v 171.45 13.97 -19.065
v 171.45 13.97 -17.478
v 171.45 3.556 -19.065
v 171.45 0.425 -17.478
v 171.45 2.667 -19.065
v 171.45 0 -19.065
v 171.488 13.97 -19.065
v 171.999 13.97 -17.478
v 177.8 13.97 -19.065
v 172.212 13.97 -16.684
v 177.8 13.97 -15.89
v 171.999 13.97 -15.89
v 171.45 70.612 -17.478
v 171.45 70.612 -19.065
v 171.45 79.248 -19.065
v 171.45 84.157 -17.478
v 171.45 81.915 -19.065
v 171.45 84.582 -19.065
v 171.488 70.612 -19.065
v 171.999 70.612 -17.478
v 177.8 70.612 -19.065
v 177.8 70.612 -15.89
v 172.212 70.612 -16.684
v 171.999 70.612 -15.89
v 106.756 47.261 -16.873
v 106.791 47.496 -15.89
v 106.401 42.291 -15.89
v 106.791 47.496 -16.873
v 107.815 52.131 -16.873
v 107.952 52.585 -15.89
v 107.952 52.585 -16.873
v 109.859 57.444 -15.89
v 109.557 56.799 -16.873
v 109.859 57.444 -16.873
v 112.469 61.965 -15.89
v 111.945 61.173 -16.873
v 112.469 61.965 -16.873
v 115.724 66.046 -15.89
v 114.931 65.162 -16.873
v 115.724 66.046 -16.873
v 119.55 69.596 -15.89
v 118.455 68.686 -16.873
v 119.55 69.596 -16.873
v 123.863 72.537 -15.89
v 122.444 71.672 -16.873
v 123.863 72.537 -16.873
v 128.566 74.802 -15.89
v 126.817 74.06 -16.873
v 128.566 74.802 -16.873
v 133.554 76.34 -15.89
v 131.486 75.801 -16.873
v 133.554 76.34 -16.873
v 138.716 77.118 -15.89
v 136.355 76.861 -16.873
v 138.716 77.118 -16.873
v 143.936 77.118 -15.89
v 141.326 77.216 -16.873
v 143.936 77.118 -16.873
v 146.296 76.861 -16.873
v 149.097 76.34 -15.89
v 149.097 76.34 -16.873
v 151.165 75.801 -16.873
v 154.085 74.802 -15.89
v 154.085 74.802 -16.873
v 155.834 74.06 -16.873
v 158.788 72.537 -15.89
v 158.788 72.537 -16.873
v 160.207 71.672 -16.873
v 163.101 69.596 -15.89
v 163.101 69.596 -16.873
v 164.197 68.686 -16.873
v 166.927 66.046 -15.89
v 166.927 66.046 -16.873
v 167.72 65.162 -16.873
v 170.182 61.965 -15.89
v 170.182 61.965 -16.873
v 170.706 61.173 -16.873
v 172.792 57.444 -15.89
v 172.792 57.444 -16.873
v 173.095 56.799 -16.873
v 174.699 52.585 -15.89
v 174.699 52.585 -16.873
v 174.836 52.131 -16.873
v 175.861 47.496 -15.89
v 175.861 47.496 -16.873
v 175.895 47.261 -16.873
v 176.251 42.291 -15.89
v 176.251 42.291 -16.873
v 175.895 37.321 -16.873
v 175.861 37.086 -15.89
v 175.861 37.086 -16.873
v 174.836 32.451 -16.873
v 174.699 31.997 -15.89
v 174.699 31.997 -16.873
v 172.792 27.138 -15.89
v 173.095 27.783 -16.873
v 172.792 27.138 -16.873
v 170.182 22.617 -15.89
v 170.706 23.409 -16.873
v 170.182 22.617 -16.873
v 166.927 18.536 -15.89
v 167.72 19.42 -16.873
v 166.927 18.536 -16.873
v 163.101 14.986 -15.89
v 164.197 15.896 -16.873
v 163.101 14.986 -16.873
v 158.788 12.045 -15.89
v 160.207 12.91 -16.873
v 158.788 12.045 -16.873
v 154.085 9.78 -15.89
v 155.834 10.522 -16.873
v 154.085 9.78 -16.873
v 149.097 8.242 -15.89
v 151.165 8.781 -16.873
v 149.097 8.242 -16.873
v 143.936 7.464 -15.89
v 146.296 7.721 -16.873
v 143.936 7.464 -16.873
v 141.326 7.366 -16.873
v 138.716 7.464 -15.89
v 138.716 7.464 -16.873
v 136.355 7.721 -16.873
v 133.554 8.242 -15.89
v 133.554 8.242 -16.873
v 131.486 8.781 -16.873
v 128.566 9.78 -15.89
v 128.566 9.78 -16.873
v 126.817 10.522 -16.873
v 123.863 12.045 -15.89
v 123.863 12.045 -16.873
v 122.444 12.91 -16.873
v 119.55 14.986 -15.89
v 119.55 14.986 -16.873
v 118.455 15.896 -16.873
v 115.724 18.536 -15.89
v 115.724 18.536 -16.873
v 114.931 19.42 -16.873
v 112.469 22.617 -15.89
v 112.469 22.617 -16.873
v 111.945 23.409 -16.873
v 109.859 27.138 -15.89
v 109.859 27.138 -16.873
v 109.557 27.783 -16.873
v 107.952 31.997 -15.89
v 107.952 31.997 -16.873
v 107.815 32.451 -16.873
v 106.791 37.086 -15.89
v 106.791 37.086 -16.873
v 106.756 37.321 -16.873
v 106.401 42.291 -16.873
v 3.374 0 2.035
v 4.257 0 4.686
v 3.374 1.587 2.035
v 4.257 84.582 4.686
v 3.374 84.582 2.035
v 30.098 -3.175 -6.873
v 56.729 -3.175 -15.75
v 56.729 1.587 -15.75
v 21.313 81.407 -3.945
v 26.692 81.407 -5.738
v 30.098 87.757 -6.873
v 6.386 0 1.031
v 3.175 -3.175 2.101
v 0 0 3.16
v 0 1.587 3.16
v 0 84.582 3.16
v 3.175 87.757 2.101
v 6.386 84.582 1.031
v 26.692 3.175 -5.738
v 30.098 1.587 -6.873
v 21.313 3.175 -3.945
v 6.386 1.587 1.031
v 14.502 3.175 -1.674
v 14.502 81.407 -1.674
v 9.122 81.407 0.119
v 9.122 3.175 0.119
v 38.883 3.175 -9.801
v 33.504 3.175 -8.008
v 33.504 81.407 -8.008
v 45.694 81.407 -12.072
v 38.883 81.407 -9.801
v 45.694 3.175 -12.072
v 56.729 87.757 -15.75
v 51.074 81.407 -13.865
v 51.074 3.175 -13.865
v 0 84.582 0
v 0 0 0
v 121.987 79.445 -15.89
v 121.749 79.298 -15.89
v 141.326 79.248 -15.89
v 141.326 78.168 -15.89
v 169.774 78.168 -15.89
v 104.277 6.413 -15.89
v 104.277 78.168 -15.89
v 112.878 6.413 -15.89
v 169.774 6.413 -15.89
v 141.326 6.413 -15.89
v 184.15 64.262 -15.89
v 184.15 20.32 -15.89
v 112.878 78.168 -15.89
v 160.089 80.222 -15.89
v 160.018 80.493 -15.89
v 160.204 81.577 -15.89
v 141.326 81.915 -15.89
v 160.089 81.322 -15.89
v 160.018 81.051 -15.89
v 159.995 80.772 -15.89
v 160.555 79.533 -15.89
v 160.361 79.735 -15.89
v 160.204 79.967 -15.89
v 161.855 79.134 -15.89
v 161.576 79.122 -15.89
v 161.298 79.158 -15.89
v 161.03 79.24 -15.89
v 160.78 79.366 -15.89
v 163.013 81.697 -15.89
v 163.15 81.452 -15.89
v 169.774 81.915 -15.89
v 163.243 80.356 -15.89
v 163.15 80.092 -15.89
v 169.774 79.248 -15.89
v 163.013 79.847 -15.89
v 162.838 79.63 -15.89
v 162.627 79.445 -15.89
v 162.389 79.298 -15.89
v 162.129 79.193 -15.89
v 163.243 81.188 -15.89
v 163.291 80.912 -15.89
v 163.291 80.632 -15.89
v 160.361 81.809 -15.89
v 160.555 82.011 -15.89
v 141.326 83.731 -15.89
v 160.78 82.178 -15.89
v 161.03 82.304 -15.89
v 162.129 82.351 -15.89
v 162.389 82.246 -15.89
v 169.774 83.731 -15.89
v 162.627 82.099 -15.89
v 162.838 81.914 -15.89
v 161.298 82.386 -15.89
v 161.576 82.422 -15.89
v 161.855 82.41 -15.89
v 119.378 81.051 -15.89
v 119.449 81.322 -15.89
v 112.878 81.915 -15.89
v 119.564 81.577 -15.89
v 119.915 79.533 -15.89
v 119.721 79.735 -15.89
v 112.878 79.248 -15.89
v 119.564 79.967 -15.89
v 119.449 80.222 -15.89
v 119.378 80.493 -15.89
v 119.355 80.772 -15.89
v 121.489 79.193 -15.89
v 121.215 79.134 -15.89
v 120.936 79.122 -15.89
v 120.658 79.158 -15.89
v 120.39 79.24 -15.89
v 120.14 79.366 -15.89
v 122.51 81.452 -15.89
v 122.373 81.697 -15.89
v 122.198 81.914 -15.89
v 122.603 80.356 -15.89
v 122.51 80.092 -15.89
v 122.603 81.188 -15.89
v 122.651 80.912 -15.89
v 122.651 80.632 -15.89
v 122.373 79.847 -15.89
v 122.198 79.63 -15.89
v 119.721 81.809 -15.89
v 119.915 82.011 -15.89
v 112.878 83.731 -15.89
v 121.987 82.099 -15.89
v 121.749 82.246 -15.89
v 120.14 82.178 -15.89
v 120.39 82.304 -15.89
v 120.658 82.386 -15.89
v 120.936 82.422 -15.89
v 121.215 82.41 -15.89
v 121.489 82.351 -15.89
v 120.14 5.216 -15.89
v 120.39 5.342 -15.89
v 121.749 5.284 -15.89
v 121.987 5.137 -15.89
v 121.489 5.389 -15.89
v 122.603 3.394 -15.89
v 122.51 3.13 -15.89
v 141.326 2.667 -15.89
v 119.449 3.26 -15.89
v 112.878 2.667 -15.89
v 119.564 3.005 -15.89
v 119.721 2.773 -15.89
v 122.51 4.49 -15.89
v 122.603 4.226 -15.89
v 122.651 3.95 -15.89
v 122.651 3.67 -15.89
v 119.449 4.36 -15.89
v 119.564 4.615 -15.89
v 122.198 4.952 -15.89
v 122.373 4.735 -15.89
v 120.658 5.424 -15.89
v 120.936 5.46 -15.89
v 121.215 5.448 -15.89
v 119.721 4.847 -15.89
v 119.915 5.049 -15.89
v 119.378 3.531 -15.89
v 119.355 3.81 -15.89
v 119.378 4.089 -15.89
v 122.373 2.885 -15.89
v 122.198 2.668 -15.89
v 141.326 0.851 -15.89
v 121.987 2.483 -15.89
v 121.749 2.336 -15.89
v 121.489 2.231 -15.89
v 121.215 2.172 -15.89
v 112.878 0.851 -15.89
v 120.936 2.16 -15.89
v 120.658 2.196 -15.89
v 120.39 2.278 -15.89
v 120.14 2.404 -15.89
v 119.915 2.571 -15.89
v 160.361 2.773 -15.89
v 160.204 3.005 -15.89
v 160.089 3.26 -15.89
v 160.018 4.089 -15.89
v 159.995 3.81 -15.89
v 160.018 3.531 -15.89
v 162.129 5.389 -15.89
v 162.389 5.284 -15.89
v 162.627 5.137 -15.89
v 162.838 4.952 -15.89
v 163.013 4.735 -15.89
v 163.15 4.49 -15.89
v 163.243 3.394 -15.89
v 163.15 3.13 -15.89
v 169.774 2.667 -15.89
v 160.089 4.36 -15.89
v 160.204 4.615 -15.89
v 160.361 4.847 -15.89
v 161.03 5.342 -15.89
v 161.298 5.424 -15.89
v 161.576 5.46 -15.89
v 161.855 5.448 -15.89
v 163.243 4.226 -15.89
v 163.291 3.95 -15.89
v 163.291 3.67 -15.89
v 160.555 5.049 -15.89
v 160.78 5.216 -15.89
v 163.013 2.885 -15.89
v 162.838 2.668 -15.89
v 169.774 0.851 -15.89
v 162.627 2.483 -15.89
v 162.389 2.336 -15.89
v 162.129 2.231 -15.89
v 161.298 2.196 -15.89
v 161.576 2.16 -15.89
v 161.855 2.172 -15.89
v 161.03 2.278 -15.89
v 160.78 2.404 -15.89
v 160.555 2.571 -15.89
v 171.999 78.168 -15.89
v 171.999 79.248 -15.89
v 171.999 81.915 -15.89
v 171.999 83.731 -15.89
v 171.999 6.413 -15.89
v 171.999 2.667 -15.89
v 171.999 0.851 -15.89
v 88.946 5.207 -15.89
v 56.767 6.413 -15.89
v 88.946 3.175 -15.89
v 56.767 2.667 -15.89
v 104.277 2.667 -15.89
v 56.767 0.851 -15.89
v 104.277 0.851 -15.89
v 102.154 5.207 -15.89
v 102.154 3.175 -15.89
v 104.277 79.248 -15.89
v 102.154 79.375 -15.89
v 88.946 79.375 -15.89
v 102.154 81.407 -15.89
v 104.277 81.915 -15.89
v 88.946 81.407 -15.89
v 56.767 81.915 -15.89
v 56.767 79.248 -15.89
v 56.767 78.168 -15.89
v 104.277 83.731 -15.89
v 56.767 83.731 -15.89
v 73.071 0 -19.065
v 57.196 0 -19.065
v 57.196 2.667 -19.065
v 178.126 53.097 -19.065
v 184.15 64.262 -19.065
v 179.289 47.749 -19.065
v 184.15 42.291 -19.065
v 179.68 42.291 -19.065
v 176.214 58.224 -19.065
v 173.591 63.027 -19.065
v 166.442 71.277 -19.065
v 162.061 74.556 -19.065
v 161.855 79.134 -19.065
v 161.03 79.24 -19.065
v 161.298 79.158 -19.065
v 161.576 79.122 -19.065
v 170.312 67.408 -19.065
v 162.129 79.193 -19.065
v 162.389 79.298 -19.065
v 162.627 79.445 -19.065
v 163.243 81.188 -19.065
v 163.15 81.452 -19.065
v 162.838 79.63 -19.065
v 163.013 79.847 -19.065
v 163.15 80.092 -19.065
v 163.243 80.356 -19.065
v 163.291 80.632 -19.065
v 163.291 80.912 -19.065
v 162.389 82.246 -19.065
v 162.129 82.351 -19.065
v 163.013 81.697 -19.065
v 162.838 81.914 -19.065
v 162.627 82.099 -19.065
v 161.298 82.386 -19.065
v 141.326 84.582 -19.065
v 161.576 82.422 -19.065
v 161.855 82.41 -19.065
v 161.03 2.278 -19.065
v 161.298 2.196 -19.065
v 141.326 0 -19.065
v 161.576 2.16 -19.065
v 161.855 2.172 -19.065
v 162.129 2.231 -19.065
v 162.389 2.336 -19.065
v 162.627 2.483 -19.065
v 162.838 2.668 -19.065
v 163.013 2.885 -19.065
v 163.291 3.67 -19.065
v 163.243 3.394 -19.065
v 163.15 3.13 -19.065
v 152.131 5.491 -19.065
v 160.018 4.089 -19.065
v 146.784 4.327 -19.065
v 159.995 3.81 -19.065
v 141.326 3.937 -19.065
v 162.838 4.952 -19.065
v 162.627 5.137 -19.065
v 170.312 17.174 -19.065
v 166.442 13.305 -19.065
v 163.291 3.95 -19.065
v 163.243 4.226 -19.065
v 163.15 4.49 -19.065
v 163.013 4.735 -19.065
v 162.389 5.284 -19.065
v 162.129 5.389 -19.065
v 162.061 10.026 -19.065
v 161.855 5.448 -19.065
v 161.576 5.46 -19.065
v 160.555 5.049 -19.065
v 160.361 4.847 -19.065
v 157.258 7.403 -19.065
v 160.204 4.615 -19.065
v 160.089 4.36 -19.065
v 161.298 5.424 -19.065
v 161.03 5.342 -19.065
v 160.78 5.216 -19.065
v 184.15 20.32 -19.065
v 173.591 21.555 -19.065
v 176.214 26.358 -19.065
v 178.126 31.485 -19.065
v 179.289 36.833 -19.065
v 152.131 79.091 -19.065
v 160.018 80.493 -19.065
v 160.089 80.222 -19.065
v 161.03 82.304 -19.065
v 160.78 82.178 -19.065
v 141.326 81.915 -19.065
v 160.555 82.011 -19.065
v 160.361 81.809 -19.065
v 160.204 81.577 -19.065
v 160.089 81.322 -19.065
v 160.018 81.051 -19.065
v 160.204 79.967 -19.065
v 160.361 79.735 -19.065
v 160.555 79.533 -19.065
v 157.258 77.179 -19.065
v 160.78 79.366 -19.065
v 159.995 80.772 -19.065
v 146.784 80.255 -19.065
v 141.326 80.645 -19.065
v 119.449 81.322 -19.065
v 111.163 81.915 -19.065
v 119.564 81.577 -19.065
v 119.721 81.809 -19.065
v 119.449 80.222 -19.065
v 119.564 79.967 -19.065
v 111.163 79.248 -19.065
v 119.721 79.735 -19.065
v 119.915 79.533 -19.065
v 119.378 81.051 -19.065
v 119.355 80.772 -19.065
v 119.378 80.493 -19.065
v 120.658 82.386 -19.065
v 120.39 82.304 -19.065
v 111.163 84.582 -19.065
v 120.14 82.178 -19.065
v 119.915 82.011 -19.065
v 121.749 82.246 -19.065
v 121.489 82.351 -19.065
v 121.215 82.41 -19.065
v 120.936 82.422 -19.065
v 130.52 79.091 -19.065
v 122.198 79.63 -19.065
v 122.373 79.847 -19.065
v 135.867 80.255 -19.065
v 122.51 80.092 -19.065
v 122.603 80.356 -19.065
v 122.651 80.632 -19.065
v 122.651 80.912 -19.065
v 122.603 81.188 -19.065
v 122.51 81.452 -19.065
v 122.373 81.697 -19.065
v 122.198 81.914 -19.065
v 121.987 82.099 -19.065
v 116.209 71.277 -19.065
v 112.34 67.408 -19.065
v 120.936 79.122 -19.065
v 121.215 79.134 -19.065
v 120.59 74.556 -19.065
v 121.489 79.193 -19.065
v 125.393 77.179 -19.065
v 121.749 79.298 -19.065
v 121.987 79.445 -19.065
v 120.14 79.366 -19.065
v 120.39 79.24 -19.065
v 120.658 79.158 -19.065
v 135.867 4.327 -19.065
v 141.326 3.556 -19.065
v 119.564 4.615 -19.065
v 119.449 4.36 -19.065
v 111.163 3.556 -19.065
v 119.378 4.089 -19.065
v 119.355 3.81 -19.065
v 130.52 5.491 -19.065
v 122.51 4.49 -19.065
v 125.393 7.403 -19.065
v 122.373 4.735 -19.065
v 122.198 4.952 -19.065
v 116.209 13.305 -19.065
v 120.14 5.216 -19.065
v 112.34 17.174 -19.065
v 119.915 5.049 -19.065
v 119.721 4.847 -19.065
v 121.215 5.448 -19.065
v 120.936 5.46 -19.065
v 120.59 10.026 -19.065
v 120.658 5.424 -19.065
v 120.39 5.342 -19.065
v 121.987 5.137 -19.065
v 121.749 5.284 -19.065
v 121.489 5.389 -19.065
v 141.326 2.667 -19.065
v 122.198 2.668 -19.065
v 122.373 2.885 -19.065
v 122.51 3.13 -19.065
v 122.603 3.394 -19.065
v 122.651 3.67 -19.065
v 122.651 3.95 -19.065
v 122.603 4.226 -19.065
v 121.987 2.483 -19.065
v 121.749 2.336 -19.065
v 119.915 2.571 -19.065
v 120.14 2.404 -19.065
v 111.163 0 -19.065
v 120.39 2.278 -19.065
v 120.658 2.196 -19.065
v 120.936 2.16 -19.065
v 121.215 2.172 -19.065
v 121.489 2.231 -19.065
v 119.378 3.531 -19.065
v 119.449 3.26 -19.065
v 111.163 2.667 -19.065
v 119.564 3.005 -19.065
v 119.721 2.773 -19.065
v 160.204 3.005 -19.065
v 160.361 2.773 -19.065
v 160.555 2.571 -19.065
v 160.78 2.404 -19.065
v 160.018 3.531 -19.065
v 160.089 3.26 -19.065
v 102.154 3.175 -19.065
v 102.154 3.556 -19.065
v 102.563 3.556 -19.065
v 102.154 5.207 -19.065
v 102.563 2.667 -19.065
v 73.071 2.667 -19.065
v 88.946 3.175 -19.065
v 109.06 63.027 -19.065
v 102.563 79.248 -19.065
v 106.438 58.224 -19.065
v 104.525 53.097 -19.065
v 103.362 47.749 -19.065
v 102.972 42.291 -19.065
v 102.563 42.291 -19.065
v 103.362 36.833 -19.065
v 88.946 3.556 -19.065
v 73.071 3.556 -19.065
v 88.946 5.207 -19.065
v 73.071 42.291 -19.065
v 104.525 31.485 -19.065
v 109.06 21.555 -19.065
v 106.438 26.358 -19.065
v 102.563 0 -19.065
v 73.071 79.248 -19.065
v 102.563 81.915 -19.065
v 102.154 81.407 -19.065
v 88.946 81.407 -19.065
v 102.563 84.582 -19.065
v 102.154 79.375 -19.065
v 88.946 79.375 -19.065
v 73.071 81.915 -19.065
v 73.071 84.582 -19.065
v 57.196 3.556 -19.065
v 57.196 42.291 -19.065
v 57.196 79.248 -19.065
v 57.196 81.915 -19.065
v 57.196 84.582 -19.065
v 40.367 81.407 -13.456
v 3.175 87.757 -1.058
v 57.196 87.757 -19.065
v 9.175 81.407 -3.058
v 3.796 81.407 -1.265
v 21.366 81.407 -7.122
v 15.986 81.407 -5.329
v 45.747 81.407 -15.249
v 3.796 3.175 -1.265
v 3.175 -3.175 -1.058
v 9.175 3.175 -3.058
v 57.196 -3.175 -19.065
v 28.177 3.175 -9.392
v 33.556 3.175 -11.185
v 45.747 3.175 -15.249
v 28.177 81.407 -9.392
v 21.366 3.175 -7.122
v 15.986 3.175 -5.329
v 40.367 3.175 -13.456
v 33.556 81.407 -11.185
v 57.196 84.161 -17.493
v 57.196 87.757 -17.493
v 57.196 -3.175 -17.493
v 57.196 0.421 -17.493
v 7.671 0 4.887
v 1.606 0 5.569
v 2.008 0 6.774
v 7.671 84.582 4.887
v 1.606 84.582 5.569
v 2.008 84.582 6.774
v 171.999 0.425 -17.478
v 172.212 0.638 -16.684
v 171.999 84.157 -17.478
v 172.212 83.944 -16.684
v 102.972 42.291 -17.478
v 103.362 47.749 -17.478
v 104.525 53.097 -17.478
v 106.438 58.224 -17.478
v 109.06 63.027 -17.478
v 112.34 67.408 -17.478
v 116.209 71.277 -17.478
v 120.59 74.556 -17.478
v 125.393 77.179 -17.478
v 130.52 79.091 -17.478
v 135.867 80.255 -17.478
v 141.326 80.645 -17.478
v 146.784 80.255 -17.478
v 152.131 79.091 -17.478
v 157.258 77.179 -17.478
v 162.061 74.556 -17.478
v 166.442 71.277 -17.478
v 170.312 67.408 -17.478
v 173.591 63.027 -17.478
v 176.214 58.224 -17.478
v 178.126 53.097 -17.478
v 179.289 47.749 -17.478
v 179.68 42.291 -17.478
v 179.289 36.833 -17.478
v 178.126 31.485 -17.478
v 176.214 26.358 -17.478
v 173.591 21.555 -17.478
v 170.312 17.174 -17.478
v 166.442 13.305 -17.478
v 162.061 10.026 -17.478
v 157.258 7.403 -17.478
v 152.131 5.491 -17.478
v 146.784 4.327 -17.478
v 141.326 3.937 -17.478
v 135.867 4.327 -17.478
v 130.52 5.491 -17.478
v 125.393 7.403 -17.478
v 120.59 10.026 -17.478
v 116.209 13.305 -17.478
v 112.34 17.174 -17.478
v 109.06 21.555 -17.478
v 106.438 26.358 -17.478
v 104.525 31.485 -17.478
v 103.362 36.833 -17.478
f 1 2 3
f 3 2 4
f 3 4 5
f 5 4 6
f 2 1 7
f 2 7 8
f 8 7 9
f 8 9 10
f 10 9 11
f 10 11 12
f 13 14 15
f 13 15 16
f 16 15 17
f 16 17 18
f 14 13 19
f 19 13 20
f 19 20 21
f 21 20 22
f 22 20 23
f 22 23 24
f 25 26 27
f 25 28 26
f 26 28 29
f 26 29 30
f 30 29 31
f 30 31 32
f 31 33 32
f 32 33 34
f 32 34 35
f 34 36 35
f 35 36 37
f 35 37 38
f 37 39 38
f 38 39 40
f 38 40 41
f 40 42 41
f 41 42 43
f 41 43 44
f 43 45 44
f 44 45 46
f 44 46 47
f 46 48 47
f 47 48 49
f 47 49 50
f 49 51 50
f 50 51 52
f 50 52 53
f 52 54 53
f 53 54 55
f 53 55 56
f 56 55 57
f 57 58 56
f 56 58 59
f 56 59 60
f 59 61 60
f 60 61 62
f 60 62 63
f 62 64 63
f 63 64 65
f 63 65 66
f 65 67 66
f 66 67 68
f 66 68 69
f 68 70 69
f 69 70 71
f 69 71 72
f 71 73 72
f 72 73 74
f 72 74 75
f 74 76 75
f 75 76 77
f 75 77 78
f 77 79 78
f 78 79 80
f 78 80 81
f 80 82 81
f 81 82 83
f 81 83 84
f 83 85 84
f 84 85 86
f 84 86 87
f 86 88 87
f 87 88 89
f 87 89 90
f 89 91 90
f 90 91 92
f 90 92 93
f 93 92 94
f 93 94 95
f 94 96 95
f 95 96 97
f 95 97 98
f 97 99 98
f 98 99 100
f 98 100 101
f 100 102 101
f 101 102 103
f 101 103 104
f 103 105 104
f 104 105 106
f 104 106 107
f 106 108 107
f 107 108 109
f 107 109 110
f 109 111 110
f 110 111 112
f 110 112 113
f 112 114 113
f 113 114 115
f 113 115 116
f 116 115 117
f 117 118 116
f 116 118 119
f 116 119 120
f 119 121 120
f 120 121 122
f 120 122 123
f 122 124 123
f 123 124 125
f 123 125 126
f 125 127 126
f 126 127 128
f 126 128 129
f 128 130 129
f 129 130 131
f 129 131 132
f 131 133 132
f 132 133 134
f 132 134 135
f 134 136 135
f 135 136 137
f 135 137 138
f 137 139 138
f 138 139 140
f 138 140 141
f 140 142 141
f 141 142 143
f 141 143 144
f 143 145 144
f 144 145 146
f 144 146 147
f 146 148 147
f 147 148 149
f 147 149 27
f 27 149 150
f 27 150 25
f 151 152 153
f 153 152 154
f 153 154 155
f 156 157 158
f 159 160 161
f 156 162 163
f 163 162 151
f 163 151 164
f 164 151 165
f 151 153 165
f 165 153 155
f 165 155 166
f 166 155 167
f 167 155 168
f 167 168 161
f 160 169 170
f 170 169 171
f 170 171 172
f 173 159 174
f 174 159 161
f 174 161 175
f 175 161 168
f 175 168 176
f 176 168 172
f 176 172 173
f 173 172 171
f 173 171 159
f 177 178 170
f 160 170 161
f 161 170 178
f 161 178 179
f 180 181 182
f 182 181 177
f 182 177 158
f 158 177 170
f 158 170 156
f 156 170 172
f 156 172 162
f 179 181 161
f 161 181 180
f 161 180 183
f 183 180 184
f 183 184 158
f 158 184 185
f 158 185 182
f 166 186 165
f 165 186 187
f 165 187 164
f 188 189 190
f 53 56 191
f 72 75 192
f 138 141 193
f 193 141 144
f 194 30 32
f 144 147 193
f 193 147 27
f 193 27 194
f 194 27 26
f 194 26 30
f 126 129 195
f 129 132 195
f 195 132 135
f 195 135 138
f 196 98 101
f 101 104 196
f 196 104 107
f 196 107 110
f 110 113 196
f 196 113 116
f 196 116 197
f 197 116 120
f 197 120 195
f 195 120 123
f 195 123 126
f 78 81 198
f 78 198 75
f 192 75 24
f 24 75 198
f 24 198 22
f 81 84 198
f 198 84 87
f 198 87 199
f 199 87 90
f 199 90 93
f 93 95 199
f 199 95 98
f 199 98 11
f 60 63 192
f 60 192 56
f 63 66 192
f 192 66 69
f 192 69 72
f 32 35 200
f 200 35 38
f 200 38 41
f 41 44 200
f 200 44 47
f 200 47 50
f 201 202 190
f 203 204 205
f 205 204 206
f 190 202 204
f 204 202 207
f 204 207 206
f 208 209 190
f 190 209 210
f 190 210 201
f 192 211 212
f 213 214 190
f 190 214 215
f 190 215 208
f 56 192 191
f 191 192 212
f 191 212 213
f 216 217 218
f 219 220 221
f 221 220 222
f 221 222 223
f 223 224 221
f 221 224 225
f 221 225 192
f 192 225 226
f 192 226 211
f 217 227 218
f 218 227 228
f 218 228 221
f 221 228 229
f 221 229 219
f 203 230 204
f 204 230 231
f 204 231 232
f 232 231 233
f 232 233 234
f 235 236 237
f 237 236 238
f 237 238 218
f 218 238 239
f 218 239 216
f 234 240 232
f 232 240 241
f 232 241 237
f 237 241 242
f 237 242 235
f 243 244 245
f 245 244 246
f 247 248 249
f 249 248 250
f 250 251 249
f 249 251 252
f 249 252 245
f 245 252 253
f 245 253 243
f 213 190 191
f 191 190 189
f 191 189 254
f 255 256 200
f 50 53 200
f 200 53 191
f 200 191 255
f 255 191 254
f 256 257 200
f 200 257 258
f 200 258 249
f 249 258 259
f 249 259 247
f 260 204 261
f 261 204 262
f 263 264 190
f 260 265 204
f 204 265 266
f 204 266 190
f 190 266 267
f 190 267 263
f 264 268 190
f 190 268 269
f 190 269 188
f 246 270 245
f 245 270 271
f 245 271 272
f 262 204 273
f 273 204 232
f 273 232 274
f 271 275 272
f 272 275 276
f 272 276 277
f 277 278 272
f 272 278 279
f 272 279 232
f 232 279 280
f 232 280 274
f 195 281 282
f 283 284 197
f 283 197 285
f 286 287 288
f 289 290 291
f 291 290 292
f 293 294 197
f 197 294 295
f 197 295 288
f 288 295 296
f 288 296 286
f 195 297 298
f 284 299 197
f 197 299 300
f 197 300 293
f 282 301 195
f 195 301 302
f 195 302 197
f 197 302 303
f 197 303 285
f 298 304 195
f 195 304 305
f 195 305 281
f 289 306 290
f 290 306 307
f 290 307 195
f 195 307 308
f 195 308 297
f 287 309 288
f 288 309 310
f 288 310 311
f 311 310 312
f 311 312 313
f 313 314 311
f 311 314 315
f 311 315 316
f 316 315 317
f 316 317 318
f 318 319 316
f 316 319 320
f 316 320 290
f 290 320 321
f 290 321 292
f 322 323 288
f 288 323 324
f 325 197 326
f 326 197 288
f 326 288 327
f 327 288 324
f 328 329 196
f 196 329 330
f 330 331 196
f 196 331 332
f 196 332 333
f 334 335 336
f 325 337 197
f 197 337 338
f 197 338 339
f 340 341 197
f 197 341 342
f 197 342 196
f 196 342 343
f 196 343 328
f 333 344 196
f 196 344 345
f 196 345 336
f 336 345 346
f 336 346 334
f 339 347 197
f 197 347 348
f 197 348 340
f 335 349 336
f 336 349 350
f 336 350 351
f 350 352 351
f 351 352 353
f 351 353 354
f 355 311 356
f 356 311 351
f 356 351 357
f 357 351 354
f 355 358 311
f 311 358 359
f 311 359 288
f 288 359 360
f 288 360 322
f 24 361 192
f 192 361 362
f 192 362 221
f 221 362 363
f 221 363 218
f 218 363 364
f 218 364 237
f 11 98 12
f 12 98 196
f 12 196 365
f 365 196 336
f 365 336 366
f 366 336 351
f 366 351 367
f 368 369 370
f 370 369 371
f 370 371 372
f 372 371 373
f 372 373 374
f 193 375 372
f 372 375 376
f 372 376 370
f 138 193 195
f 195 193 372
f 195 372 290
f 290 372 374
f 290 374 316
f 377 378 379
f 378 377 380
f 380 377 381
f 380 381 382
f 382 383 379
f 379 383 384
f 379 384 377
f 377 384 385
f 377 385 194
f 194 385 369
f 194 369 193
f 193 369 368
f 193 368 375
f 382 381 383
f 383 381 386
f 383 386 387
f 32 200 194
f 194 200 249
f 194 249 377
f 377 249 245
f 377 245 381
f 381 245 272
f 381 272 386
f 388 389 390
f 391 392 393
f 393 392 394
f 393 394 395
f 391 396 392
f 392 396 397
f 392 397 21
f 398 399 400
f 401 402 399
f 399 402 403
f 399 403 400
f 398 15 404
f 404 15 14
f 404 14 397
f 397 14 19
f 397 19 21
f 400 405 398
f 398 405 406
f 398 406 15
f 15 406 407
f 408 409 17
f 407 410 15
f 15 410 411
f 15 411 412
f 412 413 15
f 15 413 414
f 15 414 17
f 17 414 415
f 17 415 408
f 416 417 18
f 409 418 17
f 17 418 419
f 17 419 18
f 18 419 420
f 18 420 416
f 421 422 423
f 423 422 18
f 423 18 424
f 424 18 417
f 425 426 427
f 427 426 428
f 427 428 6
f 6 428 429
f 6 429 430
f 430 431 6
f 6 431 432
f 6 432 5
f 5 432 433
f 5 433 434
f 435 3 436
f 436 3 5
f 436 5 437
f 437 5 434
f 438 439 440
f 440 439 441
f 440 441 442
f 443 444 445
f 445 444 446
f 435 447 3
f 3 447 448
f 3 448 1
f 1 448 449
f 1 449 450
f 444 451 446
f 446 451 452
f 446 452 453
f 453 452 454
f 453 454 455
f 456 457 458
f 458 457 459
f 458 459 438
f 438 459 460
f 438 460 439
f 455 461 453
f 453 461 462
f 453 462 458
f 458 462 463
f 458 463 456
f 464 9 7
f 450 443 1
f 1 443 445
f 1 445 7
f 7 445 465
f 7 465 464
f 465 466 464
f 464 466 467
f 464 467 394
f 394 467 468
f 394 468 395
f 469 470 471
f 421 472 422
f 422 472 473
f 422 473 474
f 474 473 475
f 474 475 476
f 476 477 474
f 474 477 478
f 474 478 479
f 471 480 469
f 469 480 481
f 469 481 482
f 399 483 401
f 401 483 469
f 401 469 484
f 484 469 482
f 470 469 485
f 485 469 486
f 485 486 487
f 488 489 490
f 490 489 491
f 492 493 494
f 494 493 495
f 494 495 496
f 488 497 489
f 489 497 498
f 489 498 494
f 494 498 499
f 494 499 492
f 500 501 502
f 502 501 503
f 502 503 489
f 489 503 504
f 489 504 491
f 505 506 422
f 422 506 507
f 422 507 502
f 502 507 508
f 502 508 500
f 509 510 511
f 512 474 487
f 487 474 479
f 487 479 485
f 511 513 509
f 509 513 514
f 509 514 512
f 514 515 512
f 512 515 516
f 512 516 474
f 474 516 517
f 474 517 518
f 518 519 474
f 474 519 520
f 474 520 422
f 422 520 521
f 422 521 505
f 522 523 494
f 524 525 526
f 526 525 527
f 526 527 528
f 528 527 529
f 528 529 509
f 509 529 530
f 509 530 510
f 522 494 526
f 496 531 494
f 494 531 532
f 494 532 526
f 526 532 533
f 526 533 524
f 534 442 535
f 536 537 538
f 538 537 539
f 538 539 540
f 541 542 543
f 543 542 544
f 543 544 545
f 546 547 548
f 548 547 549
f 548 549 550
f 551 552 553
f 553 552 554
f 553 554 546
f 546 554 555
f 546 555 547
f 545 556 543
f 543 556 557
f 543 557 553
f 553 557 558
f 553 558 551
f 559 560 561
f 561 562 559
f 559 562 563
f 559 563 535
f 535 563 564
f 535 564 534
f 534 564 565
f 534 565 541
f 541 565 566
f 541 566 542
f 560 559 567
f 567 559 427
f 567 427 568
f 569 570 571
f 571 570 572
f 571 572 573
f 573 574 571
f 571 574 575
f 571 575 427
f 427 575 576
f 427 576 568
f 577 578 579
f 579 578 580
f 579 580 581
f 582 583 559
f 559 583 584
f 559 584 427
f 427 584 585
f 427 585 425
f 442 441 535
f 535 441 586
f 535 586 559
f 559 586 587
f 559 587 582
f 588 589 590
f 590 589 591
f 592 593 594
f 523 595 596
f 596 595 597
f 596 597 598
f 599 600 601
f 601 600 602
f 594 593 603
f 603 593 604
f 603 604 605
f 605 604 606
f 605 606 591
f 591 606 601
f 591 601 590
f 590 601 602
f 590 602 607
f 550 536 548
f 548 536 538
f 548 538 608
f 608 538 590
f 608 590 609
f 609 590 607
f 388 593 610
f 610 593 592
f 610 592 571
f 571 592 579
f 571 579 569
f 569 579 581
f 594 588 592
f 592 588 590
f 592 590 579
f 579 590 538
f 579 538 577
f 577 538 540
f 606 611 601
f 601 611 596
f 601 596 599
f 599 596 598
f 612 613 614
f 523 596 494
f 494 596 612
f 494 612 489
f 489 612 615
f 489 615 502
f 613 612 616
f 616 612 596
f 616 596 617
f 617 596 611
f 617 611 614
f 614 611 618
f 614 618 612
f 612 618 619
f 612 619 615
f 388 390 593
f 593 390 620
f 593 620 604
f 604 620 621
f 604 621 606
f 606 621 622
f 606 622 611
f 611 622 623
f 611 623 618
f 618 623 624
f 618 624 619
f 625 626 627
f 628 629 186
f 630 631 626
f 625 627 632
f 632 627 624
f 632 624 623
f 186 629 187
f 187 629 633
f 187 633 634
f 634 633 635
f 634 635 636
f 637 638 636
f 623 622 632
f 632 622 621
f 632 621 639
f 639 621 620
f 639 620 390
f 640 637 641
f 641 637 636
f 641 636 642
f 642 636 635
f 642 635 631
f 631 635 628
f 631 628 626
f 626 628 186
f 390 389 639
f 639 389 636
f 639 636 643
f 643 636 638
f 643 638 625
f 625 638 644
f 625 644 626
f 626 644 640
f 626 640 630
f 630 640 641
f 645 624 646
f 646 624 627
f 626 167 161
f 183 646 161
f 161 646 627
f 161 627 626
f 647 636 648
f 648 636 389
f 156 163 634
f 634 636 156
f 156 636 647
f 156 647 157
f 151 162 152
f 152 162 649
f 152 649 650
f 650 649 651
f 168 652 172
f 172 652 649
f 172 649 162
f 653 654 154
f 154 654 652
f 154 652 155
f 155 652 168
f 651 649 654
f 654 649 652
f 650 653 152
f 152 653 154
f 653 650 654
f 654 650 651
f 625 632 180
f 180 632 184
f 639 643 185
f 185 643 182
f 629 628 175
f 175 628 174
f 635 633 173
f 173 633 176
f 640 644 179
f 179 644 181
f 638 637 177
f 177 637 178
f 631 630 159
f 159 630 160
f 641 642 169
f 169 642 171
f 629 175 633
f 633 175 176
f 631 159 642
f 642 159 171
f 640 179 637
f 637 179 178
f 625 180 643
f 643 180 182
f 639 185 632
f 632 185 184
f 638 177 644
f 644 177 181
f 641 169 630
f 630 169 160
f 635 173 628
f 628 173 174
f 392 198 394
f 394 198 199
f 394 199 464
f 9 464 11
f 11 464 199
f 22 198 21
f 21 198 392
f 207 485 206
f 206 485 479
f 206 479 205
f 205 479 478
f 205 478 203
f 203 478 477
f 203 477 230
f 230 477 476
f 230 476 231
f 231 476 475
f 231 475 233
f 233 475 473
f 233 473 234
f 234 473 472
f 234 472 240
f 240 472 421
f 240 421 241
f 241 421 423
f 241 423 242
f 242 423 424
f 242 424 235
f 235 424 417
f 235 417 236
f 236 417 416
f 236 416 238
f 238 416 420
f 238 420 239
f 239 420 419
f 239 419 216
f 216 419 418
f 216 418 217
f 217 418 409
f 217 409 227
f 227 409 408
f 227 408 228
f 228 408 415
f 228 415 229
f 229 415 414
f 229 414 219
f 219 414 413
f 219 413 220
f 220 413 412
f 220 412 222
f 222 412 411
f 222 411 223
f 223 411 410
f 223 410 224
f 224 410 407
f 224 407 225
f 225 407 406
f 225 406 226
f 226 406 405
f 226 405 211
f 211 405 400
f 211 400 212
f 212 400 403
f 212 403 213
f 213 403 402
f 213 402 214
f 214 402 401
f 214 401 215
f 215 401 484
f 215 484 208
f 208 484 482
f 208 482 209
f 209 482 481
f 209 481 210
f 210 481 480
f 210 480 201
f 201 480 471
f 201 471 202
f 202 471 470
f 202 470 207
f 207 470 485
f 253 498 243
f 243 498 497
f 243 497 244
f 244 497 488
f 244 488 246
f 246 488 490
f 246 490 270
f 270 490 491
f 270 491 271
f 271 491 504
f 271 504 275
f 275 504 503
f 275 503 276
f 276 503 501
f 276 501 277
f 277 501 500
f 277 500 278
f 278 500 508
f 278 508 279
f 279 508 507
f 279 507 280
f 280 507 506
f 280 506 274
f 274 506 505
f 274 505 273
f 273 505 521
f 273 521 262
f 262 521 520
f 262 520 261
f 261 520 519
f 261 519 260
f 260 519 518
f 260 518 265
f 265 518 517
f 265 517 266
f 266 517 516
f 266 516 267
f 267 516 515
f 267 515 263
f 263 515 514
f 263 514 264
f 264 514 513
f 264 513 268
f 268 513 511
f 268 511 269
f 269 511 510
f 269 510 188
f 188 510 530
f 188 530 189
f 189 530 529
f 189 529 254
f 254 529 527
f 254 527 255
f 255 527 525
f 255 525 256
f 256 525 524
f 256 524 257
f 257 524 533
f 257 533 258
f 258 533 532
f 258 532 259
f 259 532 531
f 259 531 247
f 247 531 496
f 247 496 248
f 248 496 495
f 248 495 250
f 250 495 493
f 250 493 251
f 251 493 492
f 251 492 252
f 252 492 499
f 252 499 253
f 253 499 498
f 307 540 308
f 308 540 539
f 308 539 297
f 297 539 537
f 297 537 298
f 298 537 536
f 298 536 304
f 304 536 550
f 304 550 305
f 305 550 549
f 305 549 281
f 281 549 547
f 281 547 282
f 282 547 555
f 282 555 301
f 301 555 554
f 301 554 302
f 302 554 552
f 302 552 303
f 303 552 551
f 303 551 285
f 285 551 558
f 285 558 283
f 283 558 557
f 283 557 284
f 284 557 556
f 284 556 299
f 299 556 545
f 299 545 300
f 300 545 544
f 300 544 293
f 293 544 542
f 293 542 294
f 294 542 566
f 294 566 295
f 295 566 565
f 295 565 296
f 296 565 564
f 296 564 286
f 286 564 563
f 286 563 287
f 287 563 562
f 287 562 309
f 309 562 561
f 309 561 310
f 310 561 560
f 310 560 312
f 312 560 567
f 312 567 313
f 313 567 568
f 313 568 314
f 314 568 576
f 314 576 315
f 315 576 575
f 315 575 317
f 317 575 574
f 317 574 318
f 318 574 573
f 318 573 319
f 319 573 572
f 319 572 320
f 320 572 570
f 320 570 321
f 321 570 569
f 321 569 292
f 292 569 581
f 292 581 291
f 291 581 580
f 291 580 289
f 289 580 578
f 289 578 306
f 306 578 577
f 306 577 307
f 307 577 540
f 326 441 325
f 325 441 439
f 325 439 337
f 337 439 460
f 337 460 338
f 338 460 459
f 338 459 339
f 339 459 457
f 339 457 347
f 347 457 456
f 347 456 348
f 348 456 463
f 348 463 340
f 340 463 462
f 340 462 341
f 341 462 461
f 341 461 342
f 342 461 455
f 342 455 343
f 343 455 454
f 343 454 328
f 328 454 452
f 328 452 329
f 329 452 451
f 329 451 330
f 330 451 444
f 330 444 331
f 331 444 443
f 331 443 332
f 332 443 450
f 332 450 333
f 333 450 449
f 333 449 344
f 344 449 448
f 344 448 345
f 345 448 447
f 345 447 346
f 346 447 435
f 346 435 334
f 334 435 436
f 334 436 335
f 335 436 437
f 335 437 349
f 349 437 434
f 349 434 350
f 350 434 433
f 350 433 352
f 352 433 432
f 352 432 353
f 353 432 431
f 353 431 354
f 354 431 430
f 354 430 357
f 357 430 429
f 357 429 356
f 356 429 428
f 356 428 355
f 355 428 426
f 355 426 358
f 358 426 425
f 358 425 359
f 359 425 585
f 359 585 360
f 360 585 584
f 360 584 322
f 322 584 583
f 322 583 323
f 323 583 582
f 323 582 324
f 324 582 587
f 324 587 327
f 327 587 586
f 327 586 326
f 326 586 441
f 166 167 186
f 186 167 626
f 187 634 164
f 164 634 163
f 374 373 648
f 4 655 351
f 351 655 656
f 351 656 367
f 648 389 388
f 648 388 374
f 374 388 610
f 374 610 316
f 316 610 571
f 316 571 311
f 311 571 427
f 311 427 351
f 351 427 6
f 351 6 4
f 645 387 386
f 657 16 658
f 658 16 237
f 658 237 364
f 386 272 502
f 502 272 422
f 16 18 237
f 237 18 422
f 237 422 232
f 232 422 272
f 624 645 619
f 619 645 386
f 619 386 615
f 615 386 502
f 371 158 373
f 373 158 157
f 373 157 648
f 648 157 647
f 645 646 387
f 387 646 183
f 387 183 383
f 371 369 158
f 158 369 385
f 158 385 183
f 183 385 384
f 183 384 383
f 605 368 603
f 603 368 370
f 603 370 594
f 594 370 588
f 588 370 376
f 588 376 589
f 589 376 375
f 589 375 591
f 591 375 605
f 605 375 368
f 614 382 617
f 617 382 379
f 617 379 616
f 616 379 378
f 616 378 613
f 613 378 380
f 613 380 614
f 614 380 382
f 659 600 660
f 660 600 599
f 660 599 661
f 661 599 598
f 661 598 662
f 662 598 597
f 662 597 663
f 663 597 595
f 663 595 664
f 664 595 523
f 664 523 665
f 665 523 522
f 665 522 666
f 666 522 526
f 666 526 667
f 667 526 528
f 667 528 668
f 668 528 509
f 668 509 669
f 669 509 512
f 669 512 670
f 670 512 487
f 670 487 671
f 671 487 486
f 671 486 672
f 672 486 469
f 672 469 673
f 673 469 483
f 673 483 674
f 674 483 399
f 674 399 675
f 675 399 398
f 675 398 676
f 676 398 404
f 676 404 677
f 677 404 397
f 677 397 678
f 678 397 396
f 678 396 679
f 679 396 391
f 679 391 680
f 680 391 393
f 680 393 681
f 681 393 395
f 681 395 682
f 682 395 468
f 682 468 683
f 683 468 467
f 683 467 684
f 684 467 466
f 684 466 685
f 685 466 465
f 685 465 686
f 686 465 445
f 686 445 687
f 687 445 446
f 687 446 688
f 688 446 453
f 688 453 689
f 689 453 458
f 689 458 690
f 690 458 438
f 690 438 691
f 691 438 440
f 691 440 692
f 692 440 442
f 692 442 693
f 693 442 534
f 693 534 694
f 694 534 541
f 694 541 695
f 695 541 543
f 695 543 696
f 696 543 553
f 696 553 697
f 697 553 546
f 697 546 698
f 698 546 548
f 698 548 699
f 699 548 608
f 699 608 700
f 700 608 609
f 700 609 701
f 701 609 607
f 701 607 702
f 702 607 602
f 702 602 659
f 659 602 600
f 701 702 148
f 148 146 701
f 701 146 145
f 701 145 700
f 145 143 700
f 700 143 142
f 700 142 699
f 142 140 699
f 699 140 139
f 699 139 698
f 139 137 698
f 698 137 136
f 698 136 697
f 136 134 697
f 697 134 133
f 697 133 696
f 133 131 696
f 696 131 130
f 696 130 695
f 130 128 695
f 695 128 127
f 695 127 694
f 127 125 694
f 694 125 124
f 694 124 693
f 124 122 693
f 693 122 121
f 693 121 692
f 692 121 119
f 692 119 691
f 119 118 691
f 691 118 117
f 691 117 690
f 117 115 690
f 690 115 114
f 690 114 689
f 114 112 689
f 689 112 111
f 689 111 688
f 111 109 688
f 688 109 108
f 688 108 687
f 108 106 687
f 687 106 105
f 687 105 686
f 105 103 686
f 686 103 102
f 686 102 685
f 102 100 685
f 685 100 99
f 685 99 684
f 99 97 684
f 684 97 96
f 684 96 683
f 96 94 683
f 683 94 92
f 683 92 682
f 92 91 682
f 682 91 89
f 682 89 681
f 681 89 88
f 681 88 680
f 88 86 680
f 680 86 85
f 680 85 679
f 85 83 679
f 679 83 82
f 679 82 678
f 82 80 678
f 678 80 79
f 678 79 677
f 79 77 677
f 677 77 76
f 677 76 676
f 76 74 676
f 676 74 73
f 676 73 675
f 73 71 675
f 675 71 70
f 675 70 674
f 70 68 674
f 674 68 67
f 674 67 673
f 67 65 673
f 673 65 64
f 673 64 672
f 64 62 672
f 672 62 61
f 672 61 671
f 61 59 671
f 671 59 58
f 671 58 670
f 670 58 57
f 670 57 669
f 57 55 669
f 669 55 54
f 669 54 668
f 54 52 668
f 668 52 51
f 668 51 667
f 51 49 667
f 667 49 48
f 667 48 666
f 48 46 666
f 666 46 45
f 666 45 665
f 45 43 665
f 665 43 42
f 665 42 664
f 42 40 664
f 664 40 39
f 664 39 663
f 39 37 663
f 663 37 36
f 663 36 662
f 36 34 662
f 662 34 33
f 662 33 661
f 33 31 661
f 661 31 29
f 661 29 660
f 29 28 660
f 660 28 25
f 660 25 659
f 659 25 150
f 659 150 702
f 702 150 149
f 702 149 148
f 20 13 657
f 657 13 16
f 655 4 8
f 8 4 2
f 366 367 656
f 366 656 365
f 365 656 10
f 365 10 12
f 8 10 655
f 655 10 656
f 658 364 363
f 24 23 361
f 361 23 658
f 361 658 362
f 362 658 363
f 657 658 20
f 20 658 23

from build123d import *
from OCP.BRepFilletAPI import BRepFilletAPI_MakeChamfer

# Parameters (mm, degrees)
BOSS_EXTRUDE1_DEPTH = 84.582
BOSS_EXTRUDE2_DEPTH = 3.175
BOSS_EXTRUDE3_DEPTH = 3.175
SKETCH6_W           = 3.175
SKETCH6_H           = 84.582
BOSS_EXTRUDE4_DEPTH = 4.064
SKETCH7_W           = 1.27
SKETCH7_H           = 84.582
BOSS_EXTRUDE5_DEPTH = 2.794
SKETCH8_W           = 0.508
SKETCH8_H           = 78.232
CUT_EXTRUDE1_DEPTH  = 194.545554644
CHAMFER1_SIZE       = 4.88907126
CHAMFER1_SIZE_2     = 3.175
CHAMFER2_SIZE       = 4.88907126
CHAMFER2_SIZE_2     = 3.175
SKETCH11_W          = 3.175
SKETCH11_H          = 56.642
BOSS_EXTRUDE6_DEPTH = 12.7
CHAMFER3_SIZE       = 6.35
SKETCH10_R          = 34.925
SKETCH10_R_2        = 1.651
CUT_EXTRUDE2_DEPTH  = 12.7
CHAMFER4_SIZE       = 3.175
CHAMFER5_SIZE       = 3.175
CHAMFER5_SIZE_2     = 0.850738686
CHAMFER6_SIZE2      = 0.492353937
CHAMFER6_SIZE       = 1.5875
SKETCH12_W          = 13.208
SKETCH12_H          = 2.032
CUT_EXTRUDE3_DEPTH  = 206.621478571
SKETCH13_R          = 38.354
SKETCH13_R_2        = 0.226701536
CUT_EXTRUDE4_DEPTH  = 1.5875
CHAMFER8_SIZE       = 0.604625217
CHAMFER8_SIZE_2     = 3.429
BOSS_EXTRUDE7_DEPTH = 0.762
CHAMFER9_SIZE       = 0.79375
CHAMFER9_SIZE_2     = 0.212684671


# Some blends are built 0.0001 mm under size
with BuildPart() as part:
    # Sketch3 → Boss-Extrude1 (new body)
    with BuildSketch(Plane(origin=(0, 0, 0), x_dir=(1, 0, 0), z_dir=(0, 1, 0))):
        Polygon((0, 0), (57.196097427, 19.065365809), (171.45, 19.065365809), (171.45, 15.890365809), (57.15, 15.890365809), (0, -3.159634191), align=None)
    extrude(amount=BOSS_EXTRUDE1_DEPTH)

    # Sketch4 → Boss-Extrude2 (add)
    with BuildSketch(Plane(origin=(0, 84.582, 0), x_dir=(1, 0, 0), z_dir=(0, 1, 0))):
        Polygon((57.196097427, 19.065365809), (57.196097427, 15.905731618), (0, -3.159634191), (0, 0), align=None)
    extrude(amount=BOSS_EXTRUDE2_DEPTH)

    # Sketch5 → Boss-Extrude3 (add)
    with BuildSketch(Plane(origin=(0, 0, 0), x_dir=(-1, 0, 0), z_dir=(0, -1, 0))):
        Polygon((-57.196097427, 19.065365809), (-57.196097427, 15.905731618), (0, -3.159634191), (0, 0), align=None)
    extrude(amount=BOSS_EXTRUDE3_DEPTH)

    # Sketch6 → Boss-Extrude4 (add)
    with BuildSketch(Plane(origin=(0.947890257, 0, 2.843670772), x_dir=(0.9486832980505139, 0, -0.3162277660168379), z_dir=(0.3162277660168379, 0, 0.9486832980505139))):
        with Locations((4.144335938, 42.291)):
            Rectangle(SKETCH6_W, SKETCH6_H)
    extrude(amount=BOSS_EXTRUDE4_DEPTH)

    # Sketch7 → Boss-Extrude5 (add)
    with BuildSketch(Plane(origin=(2.425627551, 0, -0.808542517), x_dir=(0.31622776601683794, 0, 0.9486832980505139), z_dir=(-0.9486832980505139, 0, 0.31622776601683794))):
        with Locations((6.426492185, 42.291)):
            Rectangle(SKETCH7_W, SKETCH7_H)
    extrude(amount=BOSS_EXTRUDE5_DEPTH)

    # Sketch8 → Cut-Extrude1 (cut, through all)
    with BuildSketch(Plane(origin=(0, 0, 0), x_dir=(-0.9486832980505139, 0, 0.31622776601683794), z_dir=(-0.316227766016838, 0, -0.9486832980505139))):
        with Locations((-47.693985286, 42.291)):
            Rectangle(SKETCH8_W, SKETCH8_H)
        with Locations((-34.84399019, 42.291)):
            Rectangle(SKETCH8_W, SKETCH8_H)
        with Locations((-21.993995095, 42.291)):
            Rectangle(SKETCH8_W, SKETCH8_H)
        with Locations((-9.144, 42.291)):
            Rectangle(SKETCH8_W, SKETCH8_H)
    extrude(amount=-CUT_EXTRUDE1_DEPTH, mode=Mode.SUBTRACT)

    # Chamfer1
    # the kernel refuses this chamfer: 4.88907126, 3.175 mm, written as the material it takes off along each edge
    with BuildSketch(Plane(origin=(45.0055217, 3.175, -15.001840567), x_dir=(-0.955136727602259, 0, 0.2961652099508787), z_dir=(0, 1, 0)), Plane(origin=(32.814945973, 3.175, -10.938315324), x_dir=(-0.955136727602259, 0, 0.29616520995087847), z_dir=(0, 1, 0)), Plane(origin=(20.624370247, 3.175, -6.874790082), x_dir=(-0.9551367276022591, 0, 0.29616520995087875), z_dir=(0, 1, 0)), Plane(origin=(8.43379452, 3.175, -2.81126484), x_dir=(-0.9551367276022591, 0, 0.29616520995087847), z_dir=(0, 1, 0))) as chamfer1_piece_1:
        Polygon((CHAMFER1_SIZE * 0.999777923568, CHAMFER1_SIZE * 0.0210737654668), (-CHAMFER1_SIZE_2 * 0.0210737654663, CHAMFER1_SIZE_2 * 0.999777923546), (0, 0), align=None)
    extrude(amount=78.232, mode=Mode.SUBTRACT)

    # Chamfer2
    # the kernel refuses this chamfer: 4.88907126, 3.175 mm, written as the material it takes off along each edge
    with BuildSketch(Plane(origin=(46.435343073, 3.175, -12.3188135), x_dir=(0.9551367276022592, 0, -0.29616520995087836), z_dir=(0, 1, 0)), Plane(origin=(34.244767346, 3.175, -8.255288258), x_dir=(0.9551367276022591, 0, -0.29616520995087864), z_dir=(0, 1, 0)), Plane(origin=(22.054191619, 3.175, -4.191763015), x_dir=(0.955136727602259, 0, -0.29616520995087864), z_dir=(0, 1, 0)), Plane(origin=(9.863615892, 3.175, -0.128237773), x_dir=(0.955136727602259, 0, -0.29616520995087864), z_dir=(0, 1, 0))) as chamfer2_piece_1:
        Polygon((CHAMFER2_SIZE * 0.999777923568, CHAMFER2_SIZE * 0.0210737654668), (-CHAMFER2_SIZE_2 * 0.0210737654663, CHAMFER2_SIZE_2 * 0.999777923546), (0, 0), align=None)
    extrude(amount=78.232, mode=Mode.SUBTRACT)

    # Sketch11 → Boss-Extrude6 (add)
    with BuildSketch(Plane(origin=(171.45, 0, 0), x_dir=(0, 0, -1), z_dir=(1, 0, 0))):
        with Locations((17.477865809, 42.291)):
            Rectangle(SKETCH11_W, SKETCH11_H)
    extrude(amount=BOSS_EXTRUDE6_DEPTH)

    # Chamfer3
    chamfer3_edges = [part.edges().sort_by_distance(p)[0] for p in [
        (184.15, 13.97, -17.477865809),
        (184.15, 70.612, -17.477865809),
    ]]
    chamfer(chamfer3_edges, length=CHAMFER3_SIZE)

    # Sketch10 → Cut-Extrude2 (cut)
    with BuildSketch(Plane(origin=(0, 0, -19.065365809), x_dir=(-1, 0, 0), z_dir=(0, 0, -1))):
        with Locations((-141.3256, 42.291)):
            Circle(SKETCH10_R)
        with Locations((-161.6456, 80.772)):
            Circle(SKETCH10_R_2)
        with Locations((-121.0056, 80.772)):
            Circle(SKETCH10_R_2)
        with Locations((-121.0056, 3.81)):
            Circle(SKETCH10_R_2)
        with Locations((-161.6456, 3.81)):
            Circle(SKETCH10_R_2)
    extrude(amount=-CUT_EXTRUDE2_DEPTH, mode=Mode.SUBTRACT)

    # Chamfer4
    chamfer4_edges = [part.edges().sort_by_distance(p)[0] for p in [
        (0, 87.757, 1.579817095),
        (0, -3.175, 1.579817095),
    ]]
    chamfer(chamfer4_edges, length=CHAMFER4_SIZE)

    # Chamfer5
    chamfer5_edges_1 = [part.edges().sort_by_distance(p)[0] for p in [
        (114.3, 0, -15.890365809),
    ]]
    chamfer5_side_1 = [part.faces().sort_by_distance(p)[0] for p in [
        (114.3, 0, -15.907380583),
    ]]
    chamfer5_edges_2 = [part.edges().sort_by_distance(p)[0] for p in [
        (114.3, 84.582, -15.890365809),
    ]]
    chamfer5_side_2 = [part.faces().sort_by_distance(p)[0] for p in [
        (114.3, 84.582, -15.907380583),
    ]]
    chamfer5 = BRepFilletAPI_MakeChamfer(part.part.solid().wrapped)
    for e in chamfer5_edges_1:
        chamfer5.Add(CHAMFER5_SIZE - 0.0001, CHAMFER5_SIZE_2 - 0.0001, e.wrapped, chamfer5_side_1[0].wrapped)
    for e in chamfer5_edges_2:
        chamfer5.Add(CHAMFER5_SIZE - 0.0001, CHAMFER5_SIZE_2 - 0.0001, e.wrapped, chamfer5_side_2[0].wrapped)
    add(Compound.cast(chamfer5.Shape()), mode=Mode.REPLACE)  # a hair under: the kernel refuses the full size

    # Chamfer6
    chamfer6_edges = [part.edges().sort_by_distance(p)[0] for p in [
        (57.196097427, 85.746239108, -15.905731618),
    ]]
    chamfer6_side = [part.faces().sort_by_distance(p)[0] for p in [
        (57.196097427, 85.746239108, -15.915578697),
    ]]
    chamfer(chamfer6_edges, length=CHAMFER6_SIZE, length2=CHAMFER6_SIZE2, reference=chamfer6_side[0])

    # Sketch12 → Cut-Extrude3 (cut, through all)
    with BuildSketch(Plane(origin=(0, 0, -19.065365809), x_dir=(-1, 0, 0), z_dir=(0, 0, -1))):
        with Locations((-95.550097427, 80.391)):
            Rectangle(SKETCH12_W, SKETCH12_H)
        with Locations((-95.550097427, 4.191)):
            Rectangle(SKETCH12_W, SKETCH12_H)
    extrude(amount=-CUT_EXTRUDE3_DEPTH, mode=Mode.SUBTRACT)

    # Sketch13 → Cut-Extrude4 (cut)
    with BuildSketch(Plane(origin=(0, 0, -19.065365809), x_dir=(-1, 0, 0), z_dir=(0, 0, -1))):
        with Locations((-141.3256, 42.291)):
            Circle(SKETCH13_R)
        with Locations((-129.898704957, 9.528246972)):
            Circle(SKETCH13_R_2, mode=Mode.SUBTRACT)
    extrude(amount=-CUT_EXTRUDE4_DEPTH, mode=Mode.SUBTRACT)

    # Chamfer8
    # the kernel refuses this chamfer: 3.429, 0.604625217 mm, written as the material it takes off along each edge
    with BuildSketch(Plane(origin=(141.3256, 42.291, -17.477865809), x_dir=(-1, 0, 0), z_dir=(0, -1, 0))) as chamfer8_piece_1_section:
        Polygon((34.925, -CHAMFER8_SIZE), (34.925 + CHAMFER8_SIZE_2, 0), (34.925, 0), align=None)
    chamfer8_piece_1 = revolve(axis=Axis((141.3256, 42.291, -17.477865809), (0, 0, -1)), mode=Mode.PRIVATE)
    chamfer8_piece_1 = chamfer8_piece_1 & Plane(origin=(141.3256, 42.291, -17.229890684), x_dir=(-1, 0, 0), z_dir=(0, 0, -1)) * Cylinder(38.354, 154, mode=Mode.PRIVATE)
    add(chamfer8_piece_1, mode=Mode.SUBTRACT)

    # Sketch14 → Boss-Extrude7 (add)
    with BuildSketch(Plane(origin=(171.45, 0, 0), x_dir=(0, 0, -1), z_dir=(1, 0, 0))):
        Polygon((15.890365809, 70.612), (15.890365809, 83.731261314), (17.477865809, 84.156630657), (17.477865809, 70.612), align=None)
        Polygon((15.890365809, 13.97), (17.477865809, 13.97), (17.477865809, 0.425369343), (15.890365809, 0.850738686), align=None)
    extrude(amount=BOSS_EXTRUDE7_DEPTH)

    # Chamfer9
    chamfer9_edges_1 = [part.edges().sort_by_distance(p)[0] for p in [
        (172.212, 7.197684671, -17.477865809),
    ]]
    chamfer9_side_1 = [part.faces().sort_by_distance(p)[0] for p in [
        (172.212, 7.197684671, -17.473612116),
    ]]
    chamfer9_edges_2 = [part.edges().sort_by_distance(p)[0] for p in [
        (172.212, 7.410369343, -15.890365809),
    ]]
    chamfer9_side_2 = [part.faces().sort_by_distance(p)[0] for p in [
        (172.207746307, 7.410369343, -15.890365809),
    ]]
    chamfer9_edges_3 = [part.edges().sort_by_distance(p)[0] for p in [
        (172.212, 77.384315329, -17.477865809),
    ]]
    chamfer9_side_3 = [part.faces().sort_by_distance(p)[0] for p in [
        (172.207746307, 77.384315329, -17.477865809),
    ]]
    chamfer9_edges_4 = [part.edges().sort_by_distance(p)[0] for p in [
        (172.212, 77.171630657, -15.890365809),
    ]]
    chamfer9_side_4 = [part.faces().sort_by_distance(p)[0] for p in [
        (172.207746307, 77.171630657, -15.890365809),
    ]]
    chamfer9 = BRepFilletAPI_MakeChamfer(part.part.solid().wrapped)
    for e in chamfer9_edges_1:
        chamfer9.Add(CHAMFER9_SIZE - 0.0001, CHAMFER9_SIZE_2 - 0.0001, e.wrapped, chamfer9_side_1[0].wrapped)
    for e in chamfer9_edges_2:
        chamfer9.Add(CHAMFER9_SIZE_2 - 0.0001, CHAMFER9_SIZE - 0.0001, e.wrapped, chamfer9_side_2[0].wrapped)
    for e in chamfer9_edges_3:
        chamfer9.Add(CHAMFER9_SIZE_2 - 0.0001, CHAMFER9_SIZE - 0.0001, e.wrapped, chamfer9_side_3[0].wrapped)
    for e in chamfer9_edges_4:
        chamfer9.Add(CHAMFER9_SIZE_2 - 0.0001, CHAMFER9_SIZE - 0.0001, e.wrapped, chamfer9_side_4[0].wrapped)
    add(Compound.cast(chamfer9.Shape()), mode=Mode.REPLACE)  # a hair under: the kernel refuses the full size


solid = part.part
